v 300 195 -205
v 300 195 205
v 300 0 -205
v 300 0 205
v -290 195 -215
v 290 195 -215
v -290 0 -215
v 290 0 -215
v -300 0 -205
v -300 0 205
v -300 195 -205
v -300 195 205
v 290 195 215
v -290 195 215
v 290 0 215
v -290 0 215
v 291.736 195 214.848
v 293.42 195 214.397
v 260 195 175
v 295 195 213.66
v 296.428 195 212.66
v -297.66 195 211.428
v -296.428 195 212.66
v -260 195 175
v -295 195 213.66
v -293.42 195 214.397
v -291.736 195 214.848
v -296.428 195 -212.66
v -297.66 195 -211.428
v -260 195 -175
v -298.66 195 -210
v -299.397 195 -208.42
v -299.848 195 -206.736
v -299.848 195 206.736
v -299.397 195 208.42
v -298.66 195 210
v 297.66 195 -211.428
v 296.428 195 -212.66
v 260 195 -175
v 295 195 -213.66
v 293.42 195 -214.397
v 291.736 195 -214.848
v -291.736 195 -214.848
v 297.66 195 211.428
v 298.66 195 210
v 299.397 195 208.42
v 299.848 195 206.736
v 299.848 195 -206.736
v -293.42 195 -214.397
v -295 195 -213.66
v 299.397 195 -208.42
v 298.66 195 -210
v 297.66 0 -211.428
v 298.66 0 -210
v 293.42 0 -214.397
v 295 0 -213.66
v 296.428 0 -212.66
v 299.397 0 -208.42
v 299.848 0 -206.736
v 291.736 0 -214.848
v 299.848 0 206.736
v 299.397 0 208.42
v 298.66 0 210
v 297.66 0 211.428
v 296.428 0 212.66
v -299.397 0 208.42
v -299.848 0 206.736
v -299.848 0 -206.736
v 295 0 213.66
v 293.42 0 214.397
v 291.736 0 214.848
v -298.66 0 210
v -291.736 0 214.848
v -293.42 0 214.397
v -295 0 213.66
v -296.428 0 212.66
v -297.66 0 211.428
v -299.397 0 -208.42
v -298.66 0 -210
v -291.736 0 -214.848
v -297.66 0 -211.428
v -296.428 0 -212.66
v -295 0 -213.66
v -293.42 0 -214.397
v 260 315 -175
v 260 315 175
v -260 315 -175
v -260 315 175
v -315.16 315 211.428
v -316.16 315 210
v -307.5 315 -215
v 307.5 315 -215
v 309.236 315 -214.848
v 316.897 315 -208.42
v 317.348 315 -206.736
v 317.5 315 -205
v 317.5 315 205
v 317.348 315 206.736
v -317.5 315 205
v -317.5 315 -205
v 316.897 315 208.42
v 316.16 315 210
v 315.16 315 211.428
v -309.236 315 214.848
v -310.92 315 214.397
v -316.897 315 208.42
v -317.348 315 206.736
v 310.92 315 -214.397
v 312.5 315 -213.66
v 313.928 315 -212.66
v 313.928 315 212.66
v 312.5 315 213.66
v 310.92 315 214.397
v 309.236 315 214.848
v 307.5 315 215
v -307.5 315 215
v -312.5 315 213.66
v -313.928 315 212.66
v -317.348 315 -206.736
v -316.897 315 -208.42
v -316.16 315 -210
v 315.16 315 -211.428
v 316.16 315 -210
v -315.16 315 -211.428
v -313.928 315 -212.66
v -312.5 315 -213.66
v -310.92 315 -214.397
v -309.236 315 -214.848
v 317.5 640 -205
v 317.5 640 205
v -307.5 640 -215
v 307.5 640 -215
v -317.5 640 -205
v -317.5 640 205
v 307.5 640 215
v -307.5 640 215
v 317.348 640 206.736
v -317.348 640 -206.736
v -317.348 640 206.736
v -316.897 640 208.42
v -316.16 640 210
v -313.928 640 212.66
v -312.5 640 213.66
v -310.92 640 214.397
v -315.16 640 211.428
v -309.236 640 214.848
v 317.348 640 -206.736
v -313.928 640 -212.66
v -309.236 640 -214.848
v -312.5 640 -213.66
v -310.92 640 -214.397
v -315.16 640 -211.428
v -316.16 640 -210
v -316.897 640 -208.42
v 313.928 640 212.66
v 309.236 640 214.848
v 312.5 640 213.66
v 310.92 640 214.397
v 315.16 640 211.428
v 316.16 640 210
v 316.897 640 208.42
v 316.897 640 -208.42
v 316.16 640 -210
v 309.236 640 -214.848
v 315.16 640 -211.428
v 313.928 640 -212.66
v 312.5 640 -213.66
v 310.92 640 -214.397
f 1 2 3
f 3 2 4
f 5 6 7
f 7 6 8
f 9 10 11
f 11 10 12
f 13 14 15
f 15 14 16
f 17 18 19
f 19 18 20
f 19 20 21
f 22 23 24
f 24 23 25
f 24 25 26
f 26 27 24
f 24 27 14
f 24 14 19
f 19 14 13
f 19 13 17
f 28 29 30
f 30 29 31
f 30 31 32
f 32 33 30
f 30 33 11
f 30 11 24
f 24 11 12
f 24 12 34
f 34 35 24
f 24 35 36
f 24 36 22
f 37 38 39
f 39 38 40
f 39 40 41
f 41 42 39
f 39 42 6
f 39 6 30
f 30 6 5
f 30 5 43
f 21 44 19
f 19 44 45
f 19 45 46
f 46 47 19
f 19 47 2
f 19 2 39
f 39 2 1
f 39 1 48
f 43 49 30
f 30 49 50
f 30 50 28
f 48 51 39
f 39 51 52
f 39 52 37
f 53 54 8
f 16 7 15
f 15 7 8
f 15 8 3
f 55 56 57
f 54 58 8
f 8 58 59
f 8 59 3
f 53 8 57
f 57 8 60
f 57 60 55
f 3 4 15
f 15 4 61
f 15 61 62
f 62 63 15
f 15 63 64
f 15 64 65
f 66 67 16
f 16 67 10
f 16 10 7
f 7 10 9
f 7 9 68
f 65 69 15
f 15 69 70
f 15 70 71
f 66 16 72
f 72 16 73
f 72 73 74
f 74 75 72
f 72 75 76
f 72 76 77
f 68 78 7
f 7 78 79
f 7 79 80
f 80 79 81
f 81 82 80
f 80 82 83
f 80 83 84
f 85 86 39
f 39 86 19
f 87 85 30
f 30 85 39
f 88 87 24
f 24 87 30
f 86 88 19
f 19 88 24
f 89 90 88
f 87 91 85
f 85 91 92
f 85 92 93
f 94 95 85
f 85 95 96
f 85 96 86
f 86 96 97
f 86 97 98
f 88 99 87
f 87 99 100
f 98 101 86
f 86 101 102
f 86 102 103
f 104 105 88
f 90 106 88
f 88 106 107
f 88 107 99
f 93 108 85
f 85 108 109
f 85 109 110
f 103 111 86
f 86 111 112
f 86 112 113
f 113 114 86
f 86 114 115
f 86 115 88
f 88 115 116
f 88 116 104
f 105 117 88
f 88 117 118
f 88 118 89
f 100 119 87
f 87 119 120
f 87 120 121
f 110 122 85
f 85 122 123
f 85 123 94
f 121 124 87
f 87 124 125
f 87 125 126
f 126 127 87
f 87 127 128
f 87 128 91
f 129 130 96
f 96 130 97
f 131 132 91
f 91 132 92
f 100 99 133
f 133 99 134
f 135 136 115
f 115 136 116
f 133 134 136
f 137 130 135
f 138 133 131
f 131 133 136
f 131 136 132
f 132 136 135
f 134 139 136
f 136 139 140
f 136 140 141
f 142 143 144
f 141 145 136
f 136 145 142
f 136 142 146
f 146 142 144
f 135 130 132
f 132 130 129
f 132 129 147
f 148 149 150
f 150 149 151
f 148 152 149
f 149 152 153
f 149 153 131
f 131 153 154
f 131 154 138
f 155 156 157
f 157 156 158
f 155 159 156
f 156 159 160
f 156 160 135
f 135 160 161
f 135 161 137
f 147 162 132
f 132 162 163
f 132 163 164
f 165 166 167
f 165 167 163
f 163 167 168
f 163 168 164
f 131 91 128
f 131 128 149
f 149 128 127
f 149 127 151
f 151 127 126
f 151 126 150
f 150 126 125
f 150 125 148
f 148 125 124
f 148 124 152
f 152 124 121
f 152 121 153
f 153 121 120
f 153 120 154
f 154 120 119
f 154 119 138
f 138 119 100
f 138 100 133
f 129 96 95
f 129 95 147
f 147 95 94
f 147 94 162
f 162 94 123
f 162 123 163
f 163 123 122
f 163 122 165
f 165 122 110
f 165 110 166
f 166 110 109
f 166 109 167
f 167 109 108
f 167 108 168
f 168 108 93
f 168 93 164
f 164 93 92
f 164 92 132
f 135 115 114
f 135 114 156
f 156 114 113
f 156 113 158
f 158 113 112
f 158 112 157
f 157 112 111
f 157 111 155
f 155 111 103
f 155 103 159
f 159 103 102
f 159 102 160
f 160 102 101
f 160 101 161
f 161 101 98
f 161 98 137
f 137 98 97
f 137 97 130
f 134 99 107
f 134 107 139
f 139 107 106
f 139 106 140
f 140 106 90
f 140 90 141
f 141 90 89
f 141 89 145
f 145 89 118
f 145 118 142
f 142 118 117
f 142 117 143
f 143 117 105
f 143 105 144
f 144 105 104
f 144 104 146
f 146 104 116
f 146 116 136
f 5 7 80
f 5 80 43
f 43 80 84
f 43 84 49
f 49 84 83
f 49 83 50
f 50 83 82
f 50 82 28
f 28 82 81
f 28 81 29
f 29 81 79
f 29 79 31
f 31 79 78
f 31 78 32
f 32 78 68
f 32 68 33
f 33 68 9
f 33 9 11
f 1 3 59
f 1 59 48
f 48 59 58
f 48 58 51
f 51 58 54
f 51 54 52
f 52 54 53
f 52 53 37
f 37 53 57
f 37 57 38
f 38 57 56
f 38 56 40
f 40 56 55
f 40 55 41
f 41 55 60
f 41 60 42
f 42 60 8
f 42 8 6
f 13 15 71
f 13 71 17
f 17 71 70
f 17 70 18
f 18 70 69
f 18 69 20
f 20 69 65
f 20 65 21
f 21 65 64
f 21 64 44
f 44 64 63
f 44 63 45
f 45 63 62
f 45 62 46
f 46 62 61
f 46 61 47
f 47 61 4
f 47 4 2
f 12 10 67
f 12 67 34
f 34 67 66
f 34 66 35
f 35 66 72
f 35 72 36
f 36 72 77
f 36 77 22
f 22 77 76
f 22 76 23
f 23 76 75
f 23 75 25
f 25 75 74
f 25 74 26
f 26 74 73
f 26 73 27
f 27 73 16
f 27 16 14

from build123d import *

# Parameters (mm, degrees)
SKETCH_1_W      = 600
SKETCH_1_H      = 430
EXTRUDE_1_DEPTH = 195
SKETCH_2_W      = 520
SKETCH_2_H      = 350
EXTRUDE_2_DEPTH = 120
SKETCH_3_W      = 635
SKETCH_3_H      = 430
EXTRUDE_3_DEPTH = 325
FILLET_2_R      = 10
FILLET_3_R      = 10


with BuildPart() as part:
    # 草圖1 → 填料-伸長1 (new body)
    with BuildSketch(Plane(origin=(0, 0, 0), x_dir=(1, 0, 0), z_dir=(0, 1, 0))):
        Rectangle(SKETCH_1_W, SKETCH_1_H)
    extrude(amount=EXTRUDE_1_DEPTH)

    # 草圖2 → 填料-伸長2 (add)
    with BuildSketch(Plane(origin=(0, 195, 0), x_dir=(1, 0, 0), z_dir=(0, 1, 0))):
        Rectangle(SKETCH_2_W, SKETCH_2_H)
    extrude(amount=EXTRUDE_2_DEPTH)

    # 草圖3 → 填料-伸長3 (add)
    with BuildSketch(Plane(origin=(0, 315, 0), x_dir=(1, 0, 0), z_dir=(0, 1, 0))):
        Rectangle(SKETCH_3_W, SKETCH_3_H)
    extrude(amount=EXTRUDE_3_DEPTH)

    # 圓角2
    fillet_2_edges = [part.edges().sort_by_distance(p)[0] for p in [
        (317.5, 477.5, 215),
        (317.5, 477.5, -215),
        (-317.5, 477.5, -215),
        (-317.5, 477.5, 215),
    ]]
    fillet(fillet_2_edges, radius=FILLET_2_R)

    # 圓角3
    fillet_3_edges = [part.edges().sort_by_distance(p)[0] for p in [
        (300, 97.5, 215),
        (-300, 97.5, 215),
        (-300, 97.5, -215),
        (300, 97.5, -215),
    ]]
    fillet(fillet_3_edges, radius=FILLET_3_R)


solid = part.part
